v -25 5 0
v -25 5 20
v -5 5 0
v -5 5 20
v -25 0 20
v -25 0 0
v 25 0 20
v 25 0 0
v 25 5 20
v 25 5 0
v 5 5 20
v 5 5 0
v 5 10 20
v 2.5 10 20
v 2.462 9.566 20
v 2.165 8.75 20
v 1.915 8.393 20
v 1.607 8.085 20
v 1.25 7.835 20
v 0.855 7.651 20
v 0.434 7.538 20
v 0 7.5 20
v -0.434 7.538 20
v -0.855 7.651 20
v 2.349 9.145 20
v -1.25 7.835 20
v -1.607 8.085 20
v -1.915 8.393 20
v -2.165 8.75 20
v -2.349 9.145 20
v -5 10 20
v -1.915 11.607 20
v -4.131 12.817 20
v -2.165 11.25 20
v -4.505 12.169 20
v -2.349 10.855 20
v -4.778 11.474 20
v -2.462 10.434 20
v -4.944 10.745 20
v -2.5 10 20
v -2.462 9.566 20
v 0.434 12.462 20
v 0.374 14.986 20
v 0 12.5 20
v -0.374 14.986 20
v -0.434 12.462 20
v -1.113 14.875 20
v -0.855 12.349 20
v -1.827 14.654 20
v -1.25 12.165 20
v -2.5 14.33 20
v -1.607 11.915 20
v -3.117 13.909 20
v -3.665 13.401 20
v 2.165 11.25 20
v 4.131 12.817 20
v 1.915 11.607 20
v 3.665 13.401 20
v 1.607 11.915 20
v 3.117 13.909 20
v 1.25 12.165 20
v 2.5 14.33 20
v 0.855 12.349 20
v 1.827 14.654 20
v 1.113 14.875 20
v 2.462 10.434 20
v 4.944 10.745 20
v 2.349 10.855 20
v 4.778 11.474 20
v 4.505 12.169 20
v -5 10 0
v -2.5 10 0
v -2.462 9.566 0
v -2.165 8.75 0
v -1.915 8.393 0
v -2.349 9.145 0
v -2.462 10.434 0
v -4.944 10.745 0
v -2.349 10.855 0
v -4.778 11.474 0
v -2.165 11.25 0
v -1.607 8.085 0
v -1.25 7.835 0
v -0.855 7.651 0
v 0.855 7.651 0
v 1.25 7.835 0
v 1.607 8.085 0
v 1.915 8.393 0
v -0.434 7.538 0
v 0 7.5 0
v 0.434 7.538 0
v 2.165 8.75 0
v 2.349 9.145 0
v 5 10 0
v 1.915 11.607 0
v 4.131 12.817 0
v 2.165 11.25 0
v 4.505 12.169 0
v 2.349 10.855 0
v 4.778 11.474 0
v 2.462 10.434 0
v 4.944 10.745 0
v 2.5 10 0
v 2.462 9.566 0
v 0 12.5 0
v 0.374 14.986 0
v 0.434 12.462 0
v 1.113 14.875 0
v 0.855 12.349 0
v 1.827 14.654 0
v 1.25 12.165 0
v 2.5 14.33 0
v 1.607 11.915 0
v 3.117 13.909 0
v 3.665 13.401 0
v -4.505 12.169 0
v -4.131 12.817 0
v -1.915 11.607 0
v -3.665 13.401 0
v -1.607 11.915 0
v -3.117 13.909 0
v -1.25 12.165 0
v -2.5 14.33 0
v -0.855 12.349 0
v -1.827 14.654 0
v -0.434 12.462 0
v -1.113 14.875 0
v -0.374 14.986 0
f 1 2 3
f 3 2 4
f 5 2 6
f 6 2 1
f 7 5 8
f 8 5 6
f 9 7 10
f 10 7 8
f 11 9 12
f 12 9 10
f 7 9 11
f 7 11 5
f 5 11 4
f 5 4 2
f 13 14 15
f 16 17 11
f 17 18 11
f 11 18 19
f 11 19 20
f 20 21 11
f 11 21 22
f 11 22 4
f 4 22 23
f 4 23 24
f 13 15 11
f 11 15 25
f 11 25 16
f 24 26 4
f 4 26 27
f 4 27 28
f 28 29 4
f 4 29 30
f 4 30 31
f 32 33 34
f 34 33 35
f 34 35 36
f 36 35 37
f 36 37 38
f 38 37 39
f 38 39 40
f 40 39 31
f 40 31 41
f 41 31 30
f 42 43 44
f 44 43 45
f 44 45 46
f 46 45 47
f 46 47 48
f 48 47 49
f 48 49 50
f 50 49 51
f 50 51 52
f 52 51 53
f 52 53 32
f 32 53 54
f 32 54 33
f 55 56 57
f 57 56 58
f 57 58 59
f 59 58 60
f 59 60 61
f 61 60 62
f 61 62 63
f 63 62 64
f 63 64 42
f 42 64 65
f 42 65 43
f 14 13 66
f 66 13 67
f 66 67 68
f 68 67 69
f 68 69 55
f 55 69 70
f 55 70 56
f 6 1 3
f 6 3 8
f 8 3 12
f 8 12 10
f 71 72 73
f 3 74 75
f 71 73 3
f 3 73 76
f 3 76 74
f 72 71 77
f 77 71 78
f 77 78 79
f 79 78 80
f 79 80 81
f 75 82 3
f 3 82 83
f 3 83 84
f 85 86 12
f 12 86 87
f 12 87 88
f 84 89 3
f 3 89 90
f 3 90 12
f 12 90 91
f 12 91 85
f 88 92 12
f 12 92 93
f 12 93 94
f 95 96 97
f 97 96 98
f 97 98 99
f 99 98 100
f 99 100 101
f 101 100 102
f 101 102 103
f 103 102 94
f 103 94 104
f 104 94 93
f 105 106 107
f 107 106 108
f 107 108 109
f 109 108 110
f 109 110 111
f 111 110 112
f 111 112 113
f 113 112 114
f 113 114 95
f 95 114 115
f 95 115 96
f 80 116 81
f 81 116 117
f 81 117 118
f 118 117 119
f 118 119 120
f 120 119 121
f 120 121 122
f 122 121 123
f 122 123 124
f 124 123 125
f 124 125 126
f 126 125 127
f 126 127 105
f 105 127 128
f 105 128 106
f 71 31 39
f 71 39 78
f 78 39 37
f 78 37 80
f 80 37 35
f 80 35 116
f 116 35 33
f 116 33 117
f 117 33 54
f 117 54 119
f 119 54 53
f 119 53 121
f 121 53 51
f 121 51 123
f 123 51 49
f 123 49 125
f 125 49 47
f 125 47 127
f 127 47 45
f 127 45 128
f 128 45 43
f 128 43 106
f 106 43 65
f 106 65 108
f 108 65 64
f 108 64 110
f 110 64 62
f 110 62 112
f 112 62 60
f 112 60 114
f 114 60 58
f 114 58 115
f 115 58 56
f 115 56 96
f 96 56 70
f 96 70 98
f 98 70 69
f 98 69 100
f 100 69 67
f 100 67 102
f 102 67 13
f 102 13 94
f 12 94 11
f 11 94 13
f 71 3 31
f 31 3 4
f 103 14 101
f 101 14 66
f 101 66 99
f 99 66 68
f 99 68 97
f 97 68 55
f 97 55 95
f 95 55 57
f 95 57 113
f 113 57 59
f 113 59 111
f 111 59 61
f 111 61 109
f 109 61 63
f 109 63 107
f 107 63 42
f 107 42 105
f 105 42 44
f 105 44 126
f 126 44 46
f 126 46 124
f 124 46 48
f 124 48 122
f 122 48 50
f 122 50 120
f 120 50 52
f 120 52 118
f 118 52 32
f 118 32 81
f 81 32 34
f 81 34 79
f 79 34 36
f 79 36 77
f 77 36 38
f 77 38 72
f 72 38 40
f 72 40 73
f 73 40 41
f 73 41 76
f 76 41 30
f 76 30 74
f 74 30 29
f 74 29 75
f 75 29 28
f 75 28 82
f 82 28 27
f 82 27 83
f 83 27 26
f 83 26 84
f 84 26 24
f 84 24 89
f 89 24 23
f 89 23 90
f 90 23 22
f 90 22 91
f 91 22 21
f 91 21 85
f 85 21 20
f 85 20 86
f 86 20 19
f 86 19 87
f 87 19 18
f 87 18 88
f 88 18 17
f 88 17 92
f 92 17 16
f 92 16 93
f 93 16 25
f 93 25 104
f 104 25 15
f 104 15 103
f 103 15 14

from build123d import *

# Parameters (mm, degrees)
SKETCH_1_W          = 50
SKETCH_1_H          = 5
EXTRUDE_1_DEPTH     = 20
EXTRUDE_2_DEPTH     = 20
SKETCH_3_R          = 2.5
CUT_EXTRUDE_1_DEPTH = 20


with BuildPart() as part:
    # 草图1 → 凸台-拉伸1 (new body)
    with BuildSketch(Plane.XY):
        with Locations((0, 2.5)):
            Rectangle(SKETCH_1_W, SKETCH_1_H)
    extrude(amount=EXTRUDE_1_DEPTH)

    # 草图2 → 凸台-拉伸2 (add)
    with BuildSketch(Plane.XY.offset(20)):
        with BuildLine():
            Line((-5, 10), (-5, 5))
            Line((-5, 5), (5, 5))
            Line((5, 5), (5, 10))
            ThreePointArc((5, 10), (0, 15), (-5, 10))
        make_face()
    extrude(amount=-EXTRUDE_2_DEPTH)

    # 草图3 → 切除-拉伸1 (cut)
    with BuildSketch(Plane.XY.offset(20)):
        with Locations((0, 10)):
            Circle(SKETCH_3_R)
    extrude(amount=-CUT_EXTRUDE_1_DEPTH, mode=Mode.SUBTRACT)


solid = part.part
